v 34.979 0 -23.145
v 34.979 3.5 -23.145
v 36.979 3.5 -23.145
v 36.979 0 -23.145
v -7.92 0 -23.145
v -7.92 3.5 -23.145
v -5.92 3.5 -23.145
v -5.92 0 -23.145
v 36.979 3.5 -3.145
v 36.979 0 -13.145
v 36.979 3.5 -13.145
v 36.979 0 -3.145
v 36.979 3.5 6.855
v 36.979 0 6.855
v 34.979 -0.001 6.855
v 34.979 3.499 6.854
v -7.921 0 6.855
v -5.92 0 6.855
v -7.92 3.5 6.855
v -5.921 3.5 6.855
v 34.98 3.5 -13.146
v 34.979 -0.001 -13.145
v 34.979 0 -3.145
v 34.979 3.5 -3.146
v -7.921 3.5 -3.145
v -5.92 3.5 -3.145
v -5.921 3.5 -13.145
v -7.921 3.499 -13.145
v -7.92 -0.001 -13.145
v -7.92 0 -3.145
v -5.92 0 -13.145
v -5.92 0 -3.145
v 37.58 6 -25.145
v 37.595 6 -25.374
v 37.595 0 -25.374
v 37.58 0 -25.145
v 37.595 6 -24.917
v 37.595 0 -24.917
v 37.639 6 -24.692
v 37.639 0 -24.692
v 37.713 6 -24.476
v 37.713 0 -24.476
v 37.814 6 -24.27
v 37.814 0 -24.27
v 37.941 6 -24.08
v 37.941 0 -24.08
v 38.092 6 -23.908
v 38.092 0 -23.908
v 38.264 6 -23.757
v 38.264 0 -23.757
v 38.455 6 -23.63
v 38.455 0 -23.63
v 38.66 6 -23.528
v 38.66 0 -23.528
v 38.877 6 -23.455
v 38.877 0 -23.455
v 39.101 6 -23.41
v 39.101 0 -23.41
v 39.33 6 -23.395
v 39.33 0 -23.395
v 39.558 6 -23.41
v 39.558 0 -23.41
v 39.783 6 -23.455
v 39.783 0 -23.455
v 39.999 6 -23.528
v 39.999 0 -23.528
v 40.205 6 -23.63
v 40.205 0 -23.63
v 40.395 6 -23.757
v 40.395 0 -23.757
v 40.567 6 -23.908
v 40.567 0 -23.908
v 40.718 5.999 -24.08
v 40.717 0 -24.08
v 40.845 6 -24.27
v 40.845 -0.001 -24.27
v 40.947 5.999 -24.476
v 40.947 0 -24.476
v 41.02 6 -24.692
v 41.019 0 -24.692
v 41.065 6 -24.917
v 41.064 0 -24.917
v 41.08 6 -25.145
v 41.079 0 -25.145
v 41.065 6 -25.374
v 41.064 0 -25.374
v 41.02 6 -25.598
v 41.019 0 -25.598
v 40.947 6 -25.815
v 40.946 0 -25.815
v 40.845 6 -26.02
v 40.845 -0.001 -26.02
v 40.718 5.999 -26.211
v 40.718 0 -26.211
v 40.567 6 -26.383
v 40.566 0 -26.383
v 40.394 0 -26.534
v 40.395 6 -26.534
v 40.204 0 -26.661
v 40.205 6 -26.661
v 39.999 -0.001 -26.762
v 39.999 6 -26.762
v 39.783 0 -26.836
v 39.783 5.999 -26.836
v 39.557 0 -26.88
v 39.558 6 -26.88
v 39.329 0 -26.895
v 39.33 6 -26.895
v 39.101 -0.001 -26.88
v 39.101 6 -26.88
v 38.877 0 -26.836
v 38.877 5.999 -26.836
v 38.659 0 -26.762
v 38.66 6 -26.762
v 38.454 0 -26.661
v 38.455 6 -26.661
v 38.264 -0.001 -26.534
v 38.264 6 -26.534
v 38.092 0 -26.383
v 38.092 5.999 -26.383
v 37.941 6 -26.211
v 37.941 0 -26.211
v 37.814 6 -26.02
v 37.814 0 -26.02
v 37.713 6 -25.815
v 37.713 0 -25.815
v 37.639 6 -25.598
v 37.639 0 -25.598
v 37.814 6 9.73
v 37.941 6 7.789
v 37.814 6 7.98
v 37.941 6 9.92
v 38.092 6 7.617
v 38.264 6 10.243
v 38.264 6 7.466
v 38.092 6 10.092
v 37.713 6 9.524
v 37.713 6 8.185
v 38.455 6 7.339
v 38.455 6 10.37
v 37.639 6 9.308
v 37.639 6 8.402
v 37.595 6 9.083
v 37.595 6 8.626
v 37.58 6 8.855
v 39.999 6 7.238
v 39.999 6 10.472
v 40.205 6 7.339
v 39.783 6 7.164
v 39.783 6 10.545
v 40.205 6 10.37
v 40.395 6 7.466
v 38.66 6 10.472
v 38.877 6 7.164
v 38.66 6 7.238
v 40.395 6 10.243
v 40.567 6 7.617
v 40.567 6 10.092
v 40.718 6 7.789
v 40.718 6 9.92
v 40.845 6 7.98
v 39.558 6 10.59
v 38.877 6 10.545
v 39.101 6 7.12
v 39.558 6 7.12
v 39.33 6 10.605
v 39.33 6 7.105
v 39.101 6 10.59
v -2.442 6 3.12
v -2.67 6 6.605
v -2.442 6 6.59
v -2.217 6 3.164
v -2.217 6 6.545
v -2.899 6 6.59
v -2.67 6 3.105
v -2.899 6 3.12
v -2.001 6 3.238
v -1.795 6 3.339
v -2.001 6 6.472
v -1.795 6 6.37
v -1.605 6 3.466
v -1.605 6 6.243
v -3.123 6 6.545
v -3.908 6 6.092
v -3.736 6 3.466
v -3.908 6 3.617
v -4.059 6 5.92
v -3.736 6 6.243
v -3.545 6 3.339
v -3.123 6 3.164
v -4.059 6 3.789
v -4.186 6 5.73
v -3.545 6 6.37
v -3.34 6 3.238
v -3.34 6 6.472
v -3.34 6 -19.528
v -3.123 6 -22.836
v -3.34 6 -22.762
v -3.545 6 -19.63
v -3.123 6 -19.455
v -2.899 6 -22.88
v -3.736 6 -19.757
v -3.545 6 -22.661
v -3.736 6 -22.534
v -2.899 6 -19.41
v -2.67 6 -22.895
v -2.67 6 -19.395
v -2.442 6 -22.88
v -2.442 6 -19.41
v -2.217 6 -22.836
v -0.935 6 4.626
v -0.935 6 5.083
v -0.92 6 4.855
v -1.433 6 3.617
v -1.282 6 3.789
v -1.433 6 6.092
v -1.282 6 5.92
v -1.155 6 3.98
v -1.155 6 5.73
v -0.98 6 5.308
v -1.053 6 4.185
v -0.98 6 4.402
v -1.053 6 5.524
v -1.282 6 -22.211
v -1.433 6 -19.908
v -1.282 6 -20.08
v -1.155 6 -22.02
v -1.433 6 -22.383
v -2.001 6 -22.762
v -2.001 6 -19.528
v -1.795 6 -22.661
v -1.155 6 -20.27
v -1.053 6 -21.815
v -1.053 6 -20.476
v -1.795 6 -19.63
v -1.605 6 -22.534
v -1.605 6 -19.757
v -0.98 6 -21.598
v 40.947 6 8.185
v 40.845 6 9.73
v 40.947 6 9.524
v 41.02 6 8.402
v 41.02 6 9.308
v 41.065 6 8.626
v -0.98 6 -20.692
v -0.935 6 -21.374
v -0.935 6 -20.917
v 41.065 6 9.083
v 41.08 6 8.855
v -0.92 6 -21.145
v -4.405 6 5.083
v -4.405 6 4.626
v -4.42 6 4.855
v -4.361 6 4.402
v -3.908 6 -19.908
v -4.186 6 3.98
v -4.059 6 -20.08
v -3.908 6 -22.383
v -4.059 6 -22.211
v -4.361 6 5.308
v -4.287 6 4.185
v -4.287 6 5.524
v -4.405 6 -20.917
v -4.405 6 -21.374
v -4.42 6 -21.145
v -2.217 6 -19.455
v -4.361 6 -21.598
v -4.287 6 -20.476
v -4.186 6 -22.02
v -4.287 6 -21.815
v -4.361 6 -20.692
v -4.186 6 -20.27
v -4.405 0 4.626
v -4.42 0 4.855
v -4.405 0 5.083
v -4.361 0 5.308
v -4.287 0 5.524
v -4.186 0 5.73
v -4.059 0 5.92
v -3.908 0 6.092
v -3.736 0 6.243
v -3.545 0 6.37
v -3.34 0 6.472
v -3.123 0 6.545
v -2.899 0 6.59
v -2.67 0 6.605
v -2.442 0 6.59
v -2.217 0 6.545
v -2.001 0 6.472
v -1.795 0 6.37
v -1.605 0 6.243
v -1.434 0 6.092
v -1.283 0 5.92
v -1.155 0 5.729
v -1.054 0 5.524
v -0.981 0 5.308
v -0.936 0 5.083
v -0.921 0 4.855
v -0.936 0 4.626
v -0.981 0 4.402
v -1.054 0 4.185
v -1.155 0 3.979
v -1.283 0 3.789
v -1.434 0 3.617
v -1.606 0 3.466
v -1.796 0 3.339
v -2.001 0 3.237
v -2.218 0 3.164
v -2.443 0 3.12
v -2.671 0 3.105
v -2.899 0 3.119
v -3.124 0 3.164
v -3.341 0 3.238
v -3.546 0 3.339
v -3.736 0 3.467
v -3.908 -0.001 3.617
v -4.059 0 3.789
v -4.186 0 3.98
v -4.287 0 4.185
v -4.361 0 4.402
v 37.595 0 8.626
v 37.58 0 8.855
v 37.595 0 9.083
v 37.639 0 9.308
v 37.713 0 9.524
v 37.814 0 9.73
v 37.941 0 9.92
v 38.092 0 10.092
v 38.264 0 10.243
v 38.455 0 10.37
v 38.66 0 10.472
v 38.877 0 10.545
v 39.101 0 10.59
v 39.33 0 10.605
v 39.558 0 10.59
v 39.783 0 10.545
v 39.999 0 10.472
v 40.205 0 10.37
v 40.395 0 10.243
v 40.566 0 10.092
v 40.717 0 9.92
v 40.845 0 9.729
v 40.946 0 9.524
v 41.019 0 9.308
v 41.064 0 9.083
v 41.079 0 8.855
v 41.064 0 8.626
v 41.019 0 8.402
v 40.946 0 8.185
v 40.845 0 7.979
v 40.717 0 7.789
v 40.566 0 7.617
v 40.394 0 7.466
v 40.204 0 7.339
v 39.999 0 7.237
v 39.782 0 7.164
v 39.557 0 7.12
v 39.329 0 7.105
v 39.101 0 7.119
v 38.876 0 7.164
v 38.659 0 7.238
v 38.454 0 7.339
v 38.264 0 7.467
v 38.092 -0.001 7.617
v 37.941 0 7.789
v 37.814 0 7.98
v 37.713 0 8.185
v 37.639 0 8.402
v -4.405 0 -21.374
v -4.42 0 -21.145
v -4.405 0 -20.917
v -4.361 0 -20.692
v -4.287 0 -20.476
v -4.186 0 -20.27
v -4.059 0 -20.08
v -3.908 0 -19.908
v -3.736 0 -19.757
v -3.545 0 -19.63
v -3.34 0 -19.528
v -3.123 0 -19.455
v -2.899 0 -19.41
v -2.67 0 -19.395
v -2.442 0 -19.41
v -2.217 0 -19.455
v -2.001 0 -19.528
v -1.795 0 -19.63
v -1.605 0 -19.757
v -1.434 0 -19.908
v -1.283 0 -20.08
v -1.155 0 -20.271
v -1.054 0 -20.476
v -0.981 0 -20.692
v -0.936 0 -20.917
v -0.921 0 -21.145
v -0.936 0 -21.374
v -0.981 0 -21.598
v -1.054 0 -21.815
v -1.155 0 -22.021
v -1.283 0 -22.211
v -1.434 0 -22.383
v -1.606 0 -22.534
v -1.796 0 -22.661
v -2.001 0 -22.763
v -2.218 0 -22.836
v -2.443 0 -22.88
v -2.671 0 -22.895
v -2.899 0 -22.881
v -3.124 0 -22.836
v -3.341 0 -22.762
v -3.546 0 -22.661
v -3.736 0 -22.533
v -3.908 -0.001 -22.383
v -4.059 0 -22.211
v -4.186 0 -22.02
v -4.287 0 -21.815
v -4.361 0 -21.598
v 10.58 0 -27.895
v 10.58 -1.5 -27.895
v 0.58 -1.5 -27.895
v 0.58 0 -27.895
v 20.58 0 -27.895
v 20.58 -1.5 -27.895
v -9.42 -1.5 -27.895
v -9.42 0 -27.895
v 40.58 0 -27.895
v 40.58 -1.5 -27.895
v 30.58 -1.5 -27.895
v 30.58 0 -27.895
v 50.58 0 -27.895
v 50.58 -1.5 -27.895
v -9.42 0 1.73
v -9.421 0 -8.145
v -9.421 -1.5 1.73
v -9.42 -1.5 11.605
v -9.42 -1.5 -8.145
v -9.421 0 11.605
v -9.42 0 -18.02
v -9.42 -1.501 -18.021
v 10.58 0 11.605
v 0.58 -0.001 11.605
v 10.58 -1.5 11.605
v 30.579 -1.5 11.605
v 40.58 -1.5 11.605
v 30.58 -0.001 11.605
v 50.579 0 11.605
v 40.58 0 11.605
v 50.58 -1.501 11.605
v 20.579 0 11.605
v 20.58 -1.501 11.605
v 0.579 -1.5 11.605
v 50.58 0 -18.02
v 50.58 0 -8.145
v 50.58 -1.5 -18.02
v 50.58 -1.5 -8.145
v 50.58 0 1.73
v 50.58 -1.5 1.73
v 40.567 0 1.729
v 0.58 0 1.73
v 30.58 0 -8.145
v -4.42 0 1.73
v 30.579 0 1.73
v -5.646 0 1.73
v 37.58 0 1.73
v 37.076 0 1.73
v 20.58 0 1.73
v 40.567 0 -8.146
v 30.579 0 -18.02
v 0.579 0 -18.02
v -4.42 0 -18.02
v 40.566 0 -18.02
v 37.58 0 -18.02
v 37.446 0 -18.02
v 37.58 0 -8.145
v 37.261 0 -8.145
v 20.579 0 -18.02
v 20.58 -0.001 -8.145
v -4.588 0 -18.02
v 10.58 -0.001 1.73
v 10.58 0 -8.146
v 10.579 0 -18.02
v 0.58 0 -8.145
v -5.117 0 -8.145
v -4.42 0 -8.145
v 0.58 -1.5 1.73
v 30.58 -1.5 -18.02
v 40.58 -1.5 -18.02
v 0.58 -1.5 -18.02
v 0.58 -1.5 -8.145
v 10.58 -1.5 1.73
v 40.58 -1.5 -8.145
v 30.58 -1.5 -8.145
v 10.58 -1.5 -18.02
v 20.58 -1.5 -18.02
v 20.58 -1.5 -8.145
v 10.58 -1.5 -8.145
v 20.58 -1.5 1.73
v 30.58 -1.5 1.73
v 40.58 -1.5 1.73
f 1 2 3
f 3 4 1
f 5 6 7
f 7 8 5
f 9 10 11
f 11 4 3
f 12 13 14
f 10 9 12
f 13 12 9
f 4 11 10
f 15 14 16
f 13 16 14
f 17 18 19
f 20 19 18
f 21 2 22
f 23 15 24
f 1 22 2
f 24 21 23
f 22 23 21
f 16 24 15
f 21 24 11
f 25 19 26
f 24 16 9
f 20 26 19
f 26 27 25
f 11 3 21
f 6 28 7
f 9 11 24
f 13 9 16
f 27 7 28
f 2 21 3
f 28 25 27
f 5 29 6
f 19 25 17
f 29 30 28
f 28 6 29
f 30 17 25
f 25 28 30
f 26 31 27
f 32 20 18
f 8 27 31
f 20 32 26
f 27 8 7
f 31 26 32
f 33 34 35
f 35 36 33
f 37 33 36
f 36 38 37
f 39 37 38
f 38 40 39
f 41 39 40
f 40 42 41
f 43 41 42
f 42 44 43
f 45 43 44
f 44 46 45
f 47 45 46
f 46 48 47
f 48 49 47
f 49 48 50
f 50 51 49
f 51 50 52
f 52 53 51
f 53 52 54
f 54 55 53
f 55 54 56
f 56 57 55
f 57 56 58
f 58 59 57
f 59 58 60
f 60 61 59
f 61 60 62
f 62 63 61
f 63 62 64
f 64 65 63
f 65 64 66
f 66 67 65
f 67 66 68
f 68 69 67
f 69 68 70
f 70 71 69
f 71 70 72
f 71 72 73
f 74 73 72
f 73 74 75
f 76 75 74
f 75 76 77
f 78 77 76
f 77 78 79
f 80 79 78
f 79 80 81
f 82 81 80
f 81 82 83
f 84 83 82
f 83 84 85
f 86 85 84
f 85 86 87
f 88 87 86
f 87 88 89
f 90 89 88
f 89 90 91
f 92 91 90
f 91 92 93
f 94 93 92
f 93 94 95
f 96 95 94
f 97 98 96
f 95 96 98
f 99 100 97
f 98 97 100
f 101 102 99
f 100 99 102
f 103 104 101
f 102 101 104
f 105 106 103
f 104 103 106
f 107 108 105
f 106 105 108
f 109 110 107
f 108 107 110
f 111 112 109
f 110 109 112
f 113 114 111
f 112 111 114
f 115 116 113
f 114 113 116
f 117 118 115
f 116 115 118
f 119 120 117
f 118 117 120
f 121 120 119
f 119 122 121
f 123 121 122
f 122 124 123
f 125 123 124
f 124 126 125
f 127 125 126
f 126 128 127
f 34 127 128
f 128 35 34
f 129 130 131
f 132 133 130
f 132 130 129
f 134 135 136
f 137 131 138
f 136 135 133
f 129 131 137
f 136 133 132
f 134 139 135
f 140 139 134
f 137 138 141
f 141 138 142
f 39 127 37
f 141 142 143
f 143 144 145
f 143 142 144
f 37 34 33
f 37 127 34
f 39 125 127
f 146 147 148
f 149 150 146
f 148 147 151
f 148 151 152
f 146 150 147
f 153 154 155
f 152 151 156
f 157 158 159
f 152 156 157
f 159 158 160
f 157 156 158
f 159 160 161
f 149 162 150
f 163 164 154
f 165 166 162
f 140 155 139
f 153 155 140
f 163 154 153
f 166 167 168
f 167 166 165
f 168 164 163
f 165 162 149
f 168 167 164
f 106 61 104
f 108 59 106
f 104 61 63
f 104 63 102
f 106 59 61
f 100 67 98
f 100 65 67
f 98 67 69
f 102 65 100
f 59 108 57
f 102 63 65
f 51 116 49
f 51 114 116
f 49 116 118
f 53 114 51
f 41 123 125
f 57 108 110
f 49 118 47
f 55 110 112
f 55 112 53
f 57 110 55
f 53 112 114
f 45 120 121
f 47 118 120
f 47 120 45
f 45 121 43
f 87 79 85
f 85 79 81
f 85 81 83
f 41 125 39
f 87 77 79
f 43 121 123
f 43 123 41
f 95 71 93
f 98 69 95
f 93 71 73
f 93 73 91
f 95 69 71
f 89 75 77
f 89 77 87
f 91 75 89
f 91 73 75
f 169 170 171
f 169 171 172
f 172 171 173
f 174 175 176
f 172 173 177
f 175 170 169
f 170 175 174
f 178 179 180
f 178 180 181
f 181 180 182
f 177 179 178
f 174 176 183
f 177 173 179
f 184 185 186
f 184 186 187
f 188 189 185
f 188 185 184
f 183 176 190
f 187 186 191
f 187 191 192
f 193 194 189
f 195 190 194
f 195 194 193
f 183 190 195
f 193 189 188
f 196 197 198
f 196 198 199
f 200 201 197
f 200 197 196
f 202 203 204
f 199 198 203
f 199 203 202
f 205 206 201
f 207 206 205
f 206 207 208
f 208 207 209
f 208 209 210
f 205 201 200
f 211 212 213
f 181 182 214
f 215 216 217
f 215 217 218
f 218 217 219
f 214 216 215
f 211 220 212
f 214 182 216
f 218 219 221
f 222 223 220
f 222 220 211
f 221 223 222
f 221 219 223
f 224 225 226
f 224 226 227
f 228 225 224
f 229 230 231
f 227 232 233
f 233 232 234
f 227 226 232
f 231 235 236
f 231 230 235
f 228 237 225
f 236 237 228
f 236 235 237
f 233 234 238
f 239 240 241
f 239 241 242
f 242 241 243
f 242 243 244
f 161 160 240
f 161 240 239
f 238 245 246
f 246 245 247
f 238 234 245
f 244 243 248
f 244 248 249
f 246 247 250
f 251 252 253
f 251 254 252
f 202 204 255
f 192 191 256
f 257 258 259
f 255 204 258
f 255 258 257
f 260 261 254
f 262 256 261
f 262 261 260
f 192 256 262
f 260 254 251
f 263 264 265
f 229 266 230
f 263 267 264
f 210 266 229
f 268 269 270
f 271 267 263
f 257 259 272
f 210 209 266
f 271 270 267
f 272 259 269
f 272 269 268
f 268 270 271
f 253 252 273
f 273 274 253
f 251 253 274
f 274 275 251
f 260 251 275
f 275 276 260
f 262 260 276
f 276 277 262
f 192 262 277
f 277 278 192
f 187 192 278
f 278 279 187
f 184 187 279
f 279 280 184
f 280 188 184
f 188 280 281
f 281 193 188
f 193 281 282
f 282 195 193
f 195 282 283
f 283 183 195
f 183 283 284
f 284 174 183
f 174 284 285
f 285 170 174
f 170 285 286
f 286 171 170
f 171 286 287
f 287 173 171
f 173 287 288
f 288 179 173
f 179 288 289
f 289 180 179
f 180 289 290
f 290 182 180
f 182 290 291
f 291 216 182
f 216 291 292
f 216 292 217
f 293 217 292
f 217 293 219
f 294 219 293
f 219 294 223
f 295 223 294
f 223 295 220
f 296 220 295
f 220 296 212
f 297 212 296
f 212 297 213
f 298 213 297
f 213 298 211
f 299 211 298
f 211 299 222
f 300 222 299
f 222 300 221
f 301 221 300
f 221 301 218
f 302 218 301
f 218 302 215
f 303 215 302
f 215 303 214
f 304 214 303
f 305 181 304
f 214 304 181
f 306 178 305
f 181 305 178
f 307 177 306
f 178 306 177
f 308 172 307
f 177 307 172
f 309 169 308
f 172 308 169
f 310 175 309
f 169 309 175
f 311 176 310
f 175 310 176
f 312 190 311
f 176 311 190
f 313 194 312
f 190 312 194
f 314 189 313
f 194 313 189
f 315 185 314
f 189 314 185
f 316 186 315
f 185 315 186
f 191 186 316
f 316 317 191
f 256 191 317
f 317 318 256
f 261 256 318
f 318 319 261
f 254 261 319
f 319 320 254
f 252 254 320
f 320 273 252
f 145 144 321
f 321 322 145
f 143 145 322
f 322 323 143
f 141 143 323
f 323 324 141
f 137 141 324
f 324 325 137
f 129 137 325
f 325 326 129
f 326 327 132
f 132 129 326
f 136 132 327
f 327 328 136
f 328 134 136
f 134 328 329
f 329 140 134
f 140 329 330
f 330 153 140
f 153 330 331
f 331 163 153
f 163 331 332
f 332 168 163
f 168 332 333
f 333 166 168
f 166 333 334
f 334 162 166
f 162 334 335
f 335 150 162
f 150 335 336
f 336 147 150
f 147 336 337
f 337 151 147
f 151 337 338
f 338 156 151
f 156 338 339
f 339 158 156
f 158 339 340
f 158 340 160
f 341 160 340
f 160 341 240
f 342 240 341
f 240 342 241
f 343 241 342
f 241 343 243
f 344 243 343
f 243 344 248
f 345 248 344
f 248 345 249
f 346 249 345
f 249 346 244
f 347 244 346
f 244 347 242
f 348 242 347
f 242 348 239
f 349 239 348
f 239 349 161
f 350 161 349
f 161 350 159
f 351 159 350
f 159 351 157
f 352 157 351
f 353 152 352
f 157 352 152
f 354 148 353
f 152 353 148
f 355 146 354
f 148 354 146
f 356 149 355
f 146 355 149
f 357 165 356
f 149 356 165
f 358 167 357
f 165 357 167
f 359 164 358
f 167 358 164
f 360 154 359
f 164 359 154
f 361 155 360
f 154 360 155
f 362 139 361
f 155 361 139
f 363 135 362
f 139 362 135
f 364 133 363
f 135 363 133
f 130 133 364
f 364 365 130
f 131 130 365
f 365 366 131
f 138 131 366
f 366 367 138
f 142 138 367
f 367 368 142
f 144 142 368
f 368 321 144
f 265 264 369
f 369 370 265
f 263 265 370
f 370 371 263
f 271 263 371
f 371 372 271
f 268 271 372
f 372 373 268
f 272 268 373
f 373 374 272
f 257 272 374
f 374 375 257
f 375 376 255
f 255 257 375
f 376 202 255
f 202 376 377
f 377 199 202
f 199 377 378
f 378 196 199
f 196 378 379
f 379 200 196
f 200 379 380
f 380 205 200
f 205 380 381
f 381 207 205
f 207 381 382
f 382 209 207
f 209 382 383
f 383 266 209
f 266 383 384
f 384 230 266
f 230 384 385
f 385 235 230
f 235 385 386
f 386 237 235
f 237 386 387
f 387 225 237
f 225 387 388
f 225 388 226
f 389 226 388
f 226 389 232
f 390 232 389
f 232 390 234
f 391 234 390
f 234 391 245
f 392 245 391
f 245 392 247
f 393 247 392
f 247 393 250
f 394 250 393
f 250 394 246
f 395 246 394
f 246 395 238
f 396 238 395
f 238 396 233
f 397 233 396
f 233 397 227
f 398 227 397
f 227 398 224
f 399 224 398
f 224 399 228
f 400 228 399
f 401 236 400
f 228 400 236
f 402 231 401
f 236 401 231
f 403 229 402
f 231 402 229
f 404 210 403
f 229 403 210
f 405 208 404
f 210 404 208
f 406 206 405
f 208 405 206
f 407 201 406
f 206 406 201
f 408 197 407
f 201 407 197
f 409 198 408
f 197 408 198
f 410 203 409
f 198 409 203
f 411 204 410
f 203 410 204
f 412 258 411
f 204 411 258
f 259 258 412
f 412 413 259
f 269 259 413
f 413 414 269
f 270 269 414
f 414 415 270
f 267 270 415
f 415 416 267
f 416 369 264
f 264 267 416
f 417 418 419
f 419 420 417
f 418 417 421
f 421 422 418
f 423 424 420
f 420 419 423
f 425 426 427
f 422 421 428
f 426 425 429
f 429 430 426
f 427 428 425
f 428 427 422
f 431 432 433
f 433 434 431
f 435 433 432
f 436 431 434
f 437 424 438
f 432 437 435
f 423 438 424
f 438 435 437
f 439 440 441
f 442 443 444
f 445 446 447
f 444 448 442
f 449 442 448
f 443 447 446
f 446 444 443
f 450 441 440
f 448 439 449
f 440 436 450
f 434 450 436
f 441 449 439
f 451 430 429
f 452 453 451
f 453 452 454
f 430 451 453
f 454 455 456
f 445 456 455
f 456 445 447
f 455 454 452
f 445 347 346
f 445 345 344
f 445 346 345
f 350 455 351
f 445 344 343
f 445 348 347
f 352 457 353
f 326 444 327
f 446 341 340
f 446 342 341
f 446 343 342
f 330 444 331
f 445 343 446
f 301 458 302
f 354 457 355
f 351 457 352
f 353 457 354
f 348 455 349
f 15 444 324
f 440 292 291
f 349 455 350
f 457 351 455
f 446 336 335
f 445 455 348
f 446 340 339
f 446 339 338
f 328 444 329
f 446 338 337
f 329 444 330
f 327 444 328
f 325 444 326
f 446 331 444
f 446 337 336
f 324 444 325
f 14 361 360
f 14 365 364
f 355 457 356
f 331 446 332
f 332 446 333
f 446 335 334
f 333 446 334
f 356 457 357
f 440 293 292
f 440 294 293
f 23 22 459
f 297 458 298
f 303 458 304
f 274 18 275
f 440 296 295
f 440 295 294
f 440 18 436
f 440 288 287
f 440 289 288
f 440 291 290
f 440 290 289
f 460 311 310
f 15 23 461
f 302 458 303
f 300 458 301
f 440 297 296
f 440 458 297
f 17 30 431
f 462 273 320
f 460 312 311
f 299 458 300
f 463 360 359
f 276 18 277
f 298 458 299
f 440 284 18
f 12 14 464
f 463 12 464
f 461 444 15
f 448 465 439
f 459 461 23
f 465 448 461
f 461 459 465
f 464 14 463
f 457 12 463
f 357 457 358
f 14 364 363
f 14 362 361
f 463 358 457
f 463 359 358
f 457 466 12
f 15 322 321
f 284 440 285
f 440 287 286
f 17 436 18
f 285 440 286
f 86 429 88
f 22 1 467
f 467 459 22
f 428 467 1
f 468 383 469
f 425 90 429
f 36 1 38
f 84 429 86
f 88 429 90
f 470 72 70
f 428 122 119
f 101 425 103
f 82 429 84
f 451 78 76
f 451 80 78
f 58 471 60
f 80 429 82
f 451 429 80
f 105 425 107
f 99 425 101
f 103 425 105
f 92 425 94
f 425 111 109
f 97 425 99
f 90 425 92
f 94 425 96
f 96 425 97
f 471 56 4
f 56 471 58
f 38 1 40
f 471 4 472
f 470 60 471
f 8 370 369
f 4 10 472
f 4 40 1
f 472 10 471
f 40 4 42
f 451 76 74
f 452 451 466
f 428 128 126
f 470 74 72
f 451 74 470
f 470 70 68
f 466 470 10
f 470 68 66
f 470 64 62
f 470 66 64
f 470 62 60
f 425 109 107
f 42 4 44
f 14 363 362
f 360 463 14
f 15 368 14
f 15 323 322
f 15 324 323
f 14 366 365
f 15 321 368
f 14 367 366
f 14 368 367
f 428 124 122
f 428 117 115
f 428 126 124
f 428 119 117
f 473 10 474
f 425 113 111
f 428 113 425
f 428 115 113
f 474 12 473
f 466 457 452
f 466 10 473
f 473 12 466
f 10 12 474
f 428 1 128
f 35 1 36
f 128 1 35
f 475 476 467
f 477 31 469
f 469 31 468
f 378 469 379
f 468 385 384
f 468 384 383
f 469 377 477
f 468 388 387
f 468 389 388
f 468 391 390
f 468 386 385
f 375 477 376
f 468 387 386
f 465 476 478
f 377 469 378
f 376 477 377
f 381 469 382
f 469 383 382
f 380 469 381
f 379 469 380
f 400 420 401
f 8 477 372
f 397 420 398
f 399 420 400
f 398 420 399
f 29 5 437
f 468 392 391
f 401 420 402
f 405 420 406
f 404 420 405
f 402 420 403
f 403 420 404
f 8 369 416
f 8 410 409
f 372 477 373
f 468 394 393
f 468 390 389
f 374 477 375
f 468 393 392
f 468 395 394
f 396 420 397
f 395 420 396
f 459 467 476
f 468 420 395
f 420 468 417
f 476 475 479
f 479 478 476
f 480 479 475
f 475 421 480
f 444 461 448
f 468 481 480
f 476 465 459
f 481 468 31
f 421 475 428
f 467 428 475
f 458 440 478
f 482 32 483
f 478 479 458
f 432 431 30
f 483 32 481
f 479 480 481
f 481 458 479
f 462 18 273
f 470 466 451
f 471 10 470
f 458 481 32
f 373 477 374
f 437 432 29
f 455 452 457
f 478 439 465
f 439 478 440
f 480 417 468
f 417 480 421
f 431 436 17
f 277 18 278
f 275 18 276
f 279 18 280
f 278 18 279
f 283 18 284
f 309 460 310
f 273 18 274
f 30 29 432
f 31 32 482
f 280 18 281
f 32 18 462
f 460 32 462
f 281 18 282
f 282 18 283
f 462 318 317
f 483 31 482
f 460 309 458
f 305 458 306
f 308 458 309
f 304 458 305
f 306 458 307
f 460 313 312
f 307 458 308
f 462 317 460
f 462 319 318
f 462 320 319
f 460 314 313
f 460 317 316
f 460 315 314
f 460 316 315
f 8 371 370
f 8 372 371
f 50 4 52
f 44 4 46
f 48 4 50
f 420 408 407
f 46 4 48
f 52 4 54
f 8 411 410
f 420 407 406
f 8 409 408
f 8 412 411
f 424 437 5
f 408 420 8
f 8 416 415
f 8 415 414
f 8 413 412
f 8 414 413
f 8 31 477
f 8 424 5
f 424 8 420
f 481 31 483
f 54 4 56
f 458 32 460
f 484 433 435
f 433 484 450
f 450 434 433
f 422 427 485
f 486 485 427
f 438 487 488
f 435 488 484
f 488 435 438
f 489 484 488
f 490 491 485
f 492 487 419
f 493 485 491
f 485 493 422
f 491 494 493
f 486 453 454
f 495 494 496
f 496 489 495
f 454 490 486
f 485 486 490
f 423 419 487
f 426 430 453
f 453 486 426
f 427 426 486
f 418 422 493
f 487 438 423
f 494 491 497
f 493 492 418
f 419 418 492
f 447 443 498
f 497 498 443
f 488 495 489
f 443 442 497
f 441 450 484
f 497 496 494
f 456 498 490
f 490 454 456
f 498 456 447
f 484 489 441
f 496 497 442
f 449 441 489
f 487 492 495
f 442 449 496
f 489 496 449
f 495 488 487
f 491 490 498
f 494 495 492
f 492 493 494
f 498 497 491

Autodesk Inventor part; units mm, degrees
ref_plane "YZ Plane" through (0, 0, 0) normal (1, 0, 0) x (0, 1, 0)
ref_plane "XZ Plane" through (0, 0, 0) normal (0, 1, 0) x (-1, 0, 0)
ref_plane "XY Plane" through (0, 0, 0) normal (0, 0, 1) x (1, 0, 0)
sketch "Sketch5" plane through (0, 0, 0) normal (0, 1, 0) x (-1, 0, 0)
  line L0 (9.4203, 11.6048) -> (-50.5797, 11.6048)
  line L1 (-50.5797, 11.6048) -> (-50.5797, -27.8952)
  line L2 (-50.5797, -27.8952) -> (9.4203, -27.8952)
  line L3 (9.4203, -27.8952) -> (9.4203, 11.6048)
  circle A0 centre (2.6703, 4.8548) radius 1.75
  circle A1 centre (2.6703, -21.1452) radius 1.75
  circle A2 centre (-39.3297, 8.8548) radius 1.75
  circle A3 centre (-39.3297, -25.1452) radius 1.75
  line L4 (-36.9794, -23.1452) -> (-34.9794, -23.1452)
  line L5 (-34.9794, -23.1452) -> (-34.9794, 6.8548)
  line L6 (-34.9794, 6.8548) -> (-36.9794, 6.8548)
  line L7 (-36.9794, 6.8548) -> (-36.9794, -23.1452)
  line L8 (7.9203, 6.8548) -> (5.9203, 6.8548)
  line L9 (5.9203, 6.8548) -> (5.9203, -23.1452)
  line L10 (5.9203, -23.1452) -> (7.9203, -23.1452)
  line L11 (7.9203, -23.1452) -> (7.9203, 6.8548)
  point P0 (0, 0)
  dimension "d9" = 60
  dimension "d10" = 39.5
  dimension "d11" = 3.5
  dimension "d12" = 3.5
  dimension "d13" = 3.5
  dimension "d14" = 3.5
  dimension "d16" = 6.75
  dimension "d17" = 6.75
  dimension "d18" = 6.75
  dimension "d19" = 6.75
  dimension "d20" = 11.25
  dimension "d21" = 2.75
  dimension "d22" = 11.25
  dimension "d23" = 2.75
  dimension "d24" = 2
  dimension "d25" = 2
  dimension "d26" = 30
  dimension "d27" = 4.75
  dimension "d28" = 4.75
  dimension "d29" = 2
  dimension "d30" = 30
  dimension "d31" = 1.5
  dimension "d32" = 4.75
  dimension "d33" = 4.75
extrude "Extrusion2" add sketch "Sketch5" against normal blind 1.5 contours L3 L2 L1 L0 | A0 | A1 | A2 | A3 | L7 L6 L5 L4 | L11 L10 L9 L8
extrude "Extrusion3" add sketch "Sketch5" along normal blind 6 contours A0 | A1 | A2 | A3
extrude "Extrusion4" add sketch "Sketch5" along normal blind 3.5 contours L7 L6 L5 L4 | L11 L10 L9 L8
properties part number "RFID-RC522 Holder 3.0"
